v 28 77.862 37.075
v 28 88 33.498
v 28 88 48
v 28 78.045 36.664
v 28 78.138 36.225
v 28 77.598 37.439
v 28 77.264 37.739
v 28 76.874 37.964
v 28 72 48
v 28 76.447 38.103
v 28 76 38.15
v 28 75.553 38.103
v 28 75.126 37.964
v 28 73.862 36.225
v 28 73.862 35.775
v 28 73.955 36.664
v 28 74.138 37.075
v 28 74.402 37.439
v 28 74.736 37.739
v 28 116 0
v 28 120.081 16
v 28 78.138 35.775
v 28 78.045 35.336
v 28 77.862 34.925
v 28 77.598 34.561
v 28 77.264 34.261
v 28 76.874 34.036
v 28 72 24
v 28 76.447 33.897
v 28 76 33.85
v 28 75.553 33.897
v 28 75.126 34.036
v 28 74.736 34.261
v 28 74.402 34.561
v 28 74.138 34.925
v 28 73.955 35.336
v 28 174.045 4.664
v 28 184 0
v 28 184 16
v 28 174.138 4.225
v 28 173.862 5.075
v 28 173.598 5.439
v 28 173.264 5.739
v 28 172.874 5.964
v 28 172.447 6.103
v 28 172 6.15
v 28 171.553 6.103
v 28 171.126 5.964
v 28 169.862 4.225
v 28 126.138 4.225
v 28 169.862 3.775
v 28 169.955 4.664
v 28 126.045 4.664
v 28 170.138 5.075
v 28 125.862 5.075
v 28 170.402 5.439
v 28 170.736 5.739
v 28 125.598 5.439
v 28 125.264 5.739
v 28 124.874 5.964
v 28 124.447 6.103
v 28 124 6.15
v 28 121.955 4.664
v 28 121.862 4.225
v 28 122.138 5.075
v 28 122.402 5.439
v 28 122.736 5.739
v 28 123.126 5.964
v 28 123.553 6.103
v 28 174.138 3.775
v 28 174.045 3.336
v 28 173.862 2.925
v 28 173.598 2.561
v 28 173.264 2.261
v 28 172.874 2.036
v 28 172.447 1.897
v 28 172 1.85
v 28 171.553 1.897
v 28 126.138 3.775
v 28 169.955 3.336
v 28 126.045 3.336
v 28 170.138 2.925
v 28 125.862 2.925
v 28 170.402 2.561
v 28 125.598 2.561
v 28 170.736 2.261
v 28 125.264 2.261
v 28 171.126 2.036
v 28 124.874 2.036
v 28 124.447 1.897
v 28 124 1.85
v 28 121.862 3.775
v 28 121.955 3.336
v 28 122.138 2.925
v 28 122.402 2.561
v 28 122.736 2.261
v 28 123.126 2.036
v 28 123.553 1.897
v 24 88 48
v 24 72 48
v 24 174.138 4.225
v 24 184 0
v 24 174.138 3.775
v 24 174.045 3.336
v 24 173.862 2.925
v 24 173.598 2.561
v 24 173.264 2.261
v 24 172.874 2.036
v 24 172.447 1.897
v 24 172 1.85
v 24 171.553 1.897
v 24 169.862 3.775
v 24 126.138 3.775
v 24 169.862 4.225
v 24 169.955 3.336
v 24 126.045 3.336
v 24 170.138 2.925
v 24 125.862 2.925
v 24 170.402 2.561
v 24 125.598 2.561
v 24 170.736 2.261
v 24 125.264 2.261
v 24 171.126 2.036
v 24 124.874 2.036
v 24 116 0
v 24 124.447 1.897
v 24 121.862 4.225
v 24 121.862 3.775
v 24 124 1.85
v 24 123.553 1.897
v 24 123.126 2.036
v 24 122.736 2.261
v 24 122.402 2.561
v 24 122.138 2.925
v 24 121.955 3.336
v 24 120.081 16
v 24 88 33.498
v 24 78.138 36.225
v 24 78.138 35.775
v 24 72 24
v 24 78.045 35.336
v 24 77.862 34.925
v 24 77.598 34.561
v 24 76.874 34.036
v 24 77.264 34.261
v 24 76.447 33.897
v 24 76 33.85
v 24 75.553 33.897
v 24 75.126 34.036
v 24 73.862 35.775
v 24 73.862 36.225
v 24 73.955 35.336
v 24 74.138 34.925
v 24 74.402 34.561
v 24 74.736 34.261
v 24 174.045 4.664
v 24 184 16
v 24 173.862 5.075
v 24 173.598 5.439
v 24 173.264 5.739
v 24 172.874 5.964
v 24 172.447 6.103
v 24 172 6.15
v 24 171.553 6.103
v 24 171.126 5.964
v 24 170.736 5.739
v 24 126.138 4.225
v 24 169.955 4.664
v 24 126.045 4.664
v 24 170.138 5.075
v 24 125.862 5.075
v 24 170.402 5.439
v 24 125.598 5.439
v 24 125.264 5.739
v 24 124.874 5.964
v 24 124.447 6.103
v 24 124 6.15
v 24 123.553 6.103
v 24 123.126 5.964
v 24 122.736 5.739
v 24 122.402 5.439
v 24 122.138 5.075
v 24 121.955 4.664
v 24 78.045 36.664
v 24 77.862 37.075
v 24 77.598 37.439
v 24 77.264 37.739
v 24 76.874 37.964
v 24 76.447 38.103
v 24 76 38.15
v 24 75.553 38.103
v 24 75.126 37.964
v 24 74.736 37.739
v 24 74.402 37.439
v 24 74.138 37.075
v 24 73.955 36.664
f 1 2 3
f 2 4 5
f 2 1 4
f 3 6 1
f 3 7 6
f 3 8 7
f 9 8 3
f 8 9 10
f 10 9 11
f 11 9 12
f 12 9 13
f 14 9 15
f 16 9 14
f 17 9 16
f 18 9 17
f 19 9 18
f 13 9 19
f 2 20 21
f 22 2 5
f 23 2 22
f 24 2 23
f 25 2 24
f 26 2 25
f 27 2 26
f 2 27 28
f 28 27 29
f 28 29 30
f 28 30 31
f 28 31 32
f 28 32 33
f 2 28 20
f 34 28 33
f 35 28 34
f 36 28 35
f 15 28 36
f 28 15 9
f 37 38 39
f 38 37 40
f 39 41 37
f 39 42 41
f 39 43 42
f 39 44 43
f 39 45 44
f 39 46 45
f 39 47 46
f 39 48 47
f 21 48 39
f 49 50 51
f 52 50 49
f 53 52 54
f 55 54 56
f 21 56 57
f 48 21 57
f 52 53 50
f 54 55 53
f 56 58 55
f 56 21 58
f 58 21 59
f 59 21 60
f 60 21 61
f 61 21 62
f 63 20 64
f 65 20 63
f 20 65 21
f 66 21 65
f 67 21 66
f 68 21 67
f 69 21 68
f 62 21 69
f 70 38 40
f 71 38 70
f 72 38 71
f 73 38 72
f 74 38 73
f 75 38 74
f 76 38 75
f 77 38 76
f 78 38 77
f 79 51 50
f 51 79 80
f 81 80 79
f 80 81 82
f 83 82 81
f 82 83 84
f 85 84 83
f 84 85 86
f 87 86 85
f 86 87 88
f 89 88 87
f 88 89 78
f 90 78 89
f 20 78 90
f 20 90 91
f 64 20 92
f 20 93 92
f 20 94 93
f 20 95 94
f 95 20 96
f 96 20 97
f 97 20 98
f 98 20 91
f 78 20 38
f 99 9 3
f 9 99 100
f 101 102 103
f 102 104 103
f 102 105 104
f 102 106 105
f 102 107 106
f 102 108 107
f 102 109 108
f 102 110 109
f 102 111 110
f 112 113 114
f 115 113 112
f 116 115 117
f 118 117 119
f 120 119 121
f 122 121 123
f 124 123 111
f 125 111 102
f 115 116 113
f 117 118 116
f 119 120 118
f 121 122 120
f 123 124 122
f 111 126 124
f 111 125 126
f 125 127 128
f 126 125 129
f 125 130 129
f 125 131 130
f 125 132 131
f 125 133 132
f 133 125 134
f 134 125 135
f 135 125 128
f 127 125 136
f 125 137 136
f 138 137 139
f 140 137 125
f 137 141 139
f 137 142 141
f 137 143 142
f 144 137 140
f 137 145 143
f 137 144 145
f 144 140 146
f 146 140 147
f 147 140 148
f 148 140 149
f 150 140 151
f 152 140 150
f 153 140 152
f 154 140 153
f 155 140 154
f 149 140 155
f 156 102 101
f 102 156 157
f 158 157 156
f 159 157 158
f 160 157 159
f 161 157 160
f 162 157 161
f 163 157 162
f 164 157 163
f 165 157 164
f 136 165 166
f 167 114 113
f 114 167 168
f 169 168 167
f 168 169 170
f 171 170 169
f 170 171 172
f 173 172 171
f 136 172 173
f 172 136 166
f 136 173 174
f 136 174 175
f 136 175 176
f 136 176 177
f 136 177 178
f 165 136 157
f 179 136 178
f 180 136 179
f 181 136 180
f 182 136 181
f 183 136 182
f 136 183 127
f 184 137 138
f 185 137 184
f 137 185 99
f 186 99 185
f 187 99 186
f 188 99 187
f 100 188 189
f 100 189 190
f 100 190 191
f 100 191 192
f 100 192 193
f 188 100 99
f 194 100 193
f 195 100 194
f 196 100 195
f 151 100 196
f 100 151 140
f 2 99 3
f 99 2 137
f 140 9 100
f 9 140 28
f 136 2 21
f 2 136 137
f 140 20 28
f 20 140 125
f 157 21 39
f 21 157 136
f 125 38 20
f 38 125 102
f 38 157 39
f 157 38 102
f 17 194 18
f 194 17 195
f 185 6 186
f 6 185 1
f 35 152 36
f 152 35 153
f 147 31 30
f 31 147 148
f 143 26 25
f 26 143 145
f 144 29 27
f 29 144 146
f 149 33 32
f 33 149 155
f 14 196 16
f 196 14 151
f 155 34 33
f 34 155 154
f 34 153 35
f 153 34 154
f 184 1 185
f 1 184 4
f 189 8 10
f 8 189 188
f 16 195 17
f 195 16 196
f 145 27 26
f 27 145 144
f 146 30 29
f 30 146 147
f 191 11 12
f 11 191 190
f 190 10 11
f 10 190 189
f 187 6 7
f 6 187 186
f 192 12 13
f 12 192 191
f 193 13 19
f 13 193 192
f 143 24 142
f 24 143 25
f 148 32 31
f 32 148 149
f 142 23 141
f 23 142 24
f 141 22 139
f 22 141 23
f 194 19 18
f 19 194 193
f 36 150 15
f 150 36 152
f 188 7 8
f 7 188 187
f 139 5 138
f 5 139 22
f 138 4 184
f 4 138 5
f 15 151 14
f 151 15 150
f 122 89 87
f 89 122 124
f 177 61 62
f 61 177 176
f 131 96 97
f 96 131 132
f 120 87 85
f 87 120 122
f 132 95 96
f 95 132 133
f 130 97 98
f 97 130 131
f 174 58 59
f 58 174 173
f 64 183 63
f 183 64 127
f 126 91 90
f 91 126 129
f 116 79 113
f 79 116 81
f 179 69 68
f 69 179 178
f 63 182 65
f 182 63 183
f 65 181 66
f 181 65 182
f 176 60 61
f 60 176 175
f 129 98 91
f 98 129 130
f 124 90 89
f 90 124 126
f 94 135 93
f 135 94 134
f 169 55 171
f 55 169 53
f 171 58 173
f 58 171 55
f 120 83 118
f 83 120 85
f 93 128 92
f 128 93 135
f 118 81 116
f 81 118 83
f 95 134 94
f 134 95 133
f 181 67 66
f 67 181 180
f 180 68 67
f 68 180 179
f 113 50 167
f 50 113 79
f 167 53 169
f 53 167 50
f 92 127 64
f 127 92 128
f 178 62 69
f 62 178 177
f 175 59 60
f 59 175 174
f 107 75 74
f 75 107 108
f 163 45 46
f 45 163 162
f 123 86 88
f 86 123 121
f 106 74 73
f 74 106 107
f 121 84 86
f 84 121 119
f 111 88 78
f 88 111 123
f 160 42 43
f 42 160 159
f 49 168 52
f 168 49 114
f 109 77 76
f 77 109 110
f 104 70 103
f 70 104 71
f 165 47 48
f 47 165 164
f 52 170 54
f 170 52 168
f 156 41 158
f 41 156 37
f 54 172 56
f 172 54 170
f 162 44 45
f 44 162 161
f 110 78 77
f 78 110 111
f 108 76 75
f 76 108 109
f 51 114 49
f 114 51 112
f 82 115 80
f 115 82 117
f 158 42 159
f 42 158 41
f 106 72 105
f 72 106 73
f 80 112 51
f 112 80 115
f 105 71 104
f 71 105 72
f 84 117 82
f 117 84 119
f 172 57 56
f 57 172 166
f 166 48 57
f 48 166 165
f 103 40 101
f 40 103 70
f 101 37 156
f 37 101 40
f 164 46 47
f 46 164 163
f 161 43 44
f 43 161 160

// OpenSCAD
// top entry guard rail
difference() {
union() {
    // vertical piece
    translate([24,72,24])
    cube([4,16,24]);
    
    // angled piece
    translate([24,72,24])
    rotate([331.39,0,0])
    cube([4,50.12,16]);
    
    // horizontal piece
    translate([24,116,0])
    cube([4,68,16]);
}
    // left hole
    translate([-4,76,36])
    rotate([0,90,0])
    cylinder(r=2.15,90, $fn=30);

    // middle hole
    translate([-4,124,4])
    rotate([0,90,0])
    cylinder(r=2.15,60, $fn=30);

    // right hole
    translate([-4,172,4])
    rotate([0,90,0])
    cylinder(r=2.15,60, $fn=30);
}
